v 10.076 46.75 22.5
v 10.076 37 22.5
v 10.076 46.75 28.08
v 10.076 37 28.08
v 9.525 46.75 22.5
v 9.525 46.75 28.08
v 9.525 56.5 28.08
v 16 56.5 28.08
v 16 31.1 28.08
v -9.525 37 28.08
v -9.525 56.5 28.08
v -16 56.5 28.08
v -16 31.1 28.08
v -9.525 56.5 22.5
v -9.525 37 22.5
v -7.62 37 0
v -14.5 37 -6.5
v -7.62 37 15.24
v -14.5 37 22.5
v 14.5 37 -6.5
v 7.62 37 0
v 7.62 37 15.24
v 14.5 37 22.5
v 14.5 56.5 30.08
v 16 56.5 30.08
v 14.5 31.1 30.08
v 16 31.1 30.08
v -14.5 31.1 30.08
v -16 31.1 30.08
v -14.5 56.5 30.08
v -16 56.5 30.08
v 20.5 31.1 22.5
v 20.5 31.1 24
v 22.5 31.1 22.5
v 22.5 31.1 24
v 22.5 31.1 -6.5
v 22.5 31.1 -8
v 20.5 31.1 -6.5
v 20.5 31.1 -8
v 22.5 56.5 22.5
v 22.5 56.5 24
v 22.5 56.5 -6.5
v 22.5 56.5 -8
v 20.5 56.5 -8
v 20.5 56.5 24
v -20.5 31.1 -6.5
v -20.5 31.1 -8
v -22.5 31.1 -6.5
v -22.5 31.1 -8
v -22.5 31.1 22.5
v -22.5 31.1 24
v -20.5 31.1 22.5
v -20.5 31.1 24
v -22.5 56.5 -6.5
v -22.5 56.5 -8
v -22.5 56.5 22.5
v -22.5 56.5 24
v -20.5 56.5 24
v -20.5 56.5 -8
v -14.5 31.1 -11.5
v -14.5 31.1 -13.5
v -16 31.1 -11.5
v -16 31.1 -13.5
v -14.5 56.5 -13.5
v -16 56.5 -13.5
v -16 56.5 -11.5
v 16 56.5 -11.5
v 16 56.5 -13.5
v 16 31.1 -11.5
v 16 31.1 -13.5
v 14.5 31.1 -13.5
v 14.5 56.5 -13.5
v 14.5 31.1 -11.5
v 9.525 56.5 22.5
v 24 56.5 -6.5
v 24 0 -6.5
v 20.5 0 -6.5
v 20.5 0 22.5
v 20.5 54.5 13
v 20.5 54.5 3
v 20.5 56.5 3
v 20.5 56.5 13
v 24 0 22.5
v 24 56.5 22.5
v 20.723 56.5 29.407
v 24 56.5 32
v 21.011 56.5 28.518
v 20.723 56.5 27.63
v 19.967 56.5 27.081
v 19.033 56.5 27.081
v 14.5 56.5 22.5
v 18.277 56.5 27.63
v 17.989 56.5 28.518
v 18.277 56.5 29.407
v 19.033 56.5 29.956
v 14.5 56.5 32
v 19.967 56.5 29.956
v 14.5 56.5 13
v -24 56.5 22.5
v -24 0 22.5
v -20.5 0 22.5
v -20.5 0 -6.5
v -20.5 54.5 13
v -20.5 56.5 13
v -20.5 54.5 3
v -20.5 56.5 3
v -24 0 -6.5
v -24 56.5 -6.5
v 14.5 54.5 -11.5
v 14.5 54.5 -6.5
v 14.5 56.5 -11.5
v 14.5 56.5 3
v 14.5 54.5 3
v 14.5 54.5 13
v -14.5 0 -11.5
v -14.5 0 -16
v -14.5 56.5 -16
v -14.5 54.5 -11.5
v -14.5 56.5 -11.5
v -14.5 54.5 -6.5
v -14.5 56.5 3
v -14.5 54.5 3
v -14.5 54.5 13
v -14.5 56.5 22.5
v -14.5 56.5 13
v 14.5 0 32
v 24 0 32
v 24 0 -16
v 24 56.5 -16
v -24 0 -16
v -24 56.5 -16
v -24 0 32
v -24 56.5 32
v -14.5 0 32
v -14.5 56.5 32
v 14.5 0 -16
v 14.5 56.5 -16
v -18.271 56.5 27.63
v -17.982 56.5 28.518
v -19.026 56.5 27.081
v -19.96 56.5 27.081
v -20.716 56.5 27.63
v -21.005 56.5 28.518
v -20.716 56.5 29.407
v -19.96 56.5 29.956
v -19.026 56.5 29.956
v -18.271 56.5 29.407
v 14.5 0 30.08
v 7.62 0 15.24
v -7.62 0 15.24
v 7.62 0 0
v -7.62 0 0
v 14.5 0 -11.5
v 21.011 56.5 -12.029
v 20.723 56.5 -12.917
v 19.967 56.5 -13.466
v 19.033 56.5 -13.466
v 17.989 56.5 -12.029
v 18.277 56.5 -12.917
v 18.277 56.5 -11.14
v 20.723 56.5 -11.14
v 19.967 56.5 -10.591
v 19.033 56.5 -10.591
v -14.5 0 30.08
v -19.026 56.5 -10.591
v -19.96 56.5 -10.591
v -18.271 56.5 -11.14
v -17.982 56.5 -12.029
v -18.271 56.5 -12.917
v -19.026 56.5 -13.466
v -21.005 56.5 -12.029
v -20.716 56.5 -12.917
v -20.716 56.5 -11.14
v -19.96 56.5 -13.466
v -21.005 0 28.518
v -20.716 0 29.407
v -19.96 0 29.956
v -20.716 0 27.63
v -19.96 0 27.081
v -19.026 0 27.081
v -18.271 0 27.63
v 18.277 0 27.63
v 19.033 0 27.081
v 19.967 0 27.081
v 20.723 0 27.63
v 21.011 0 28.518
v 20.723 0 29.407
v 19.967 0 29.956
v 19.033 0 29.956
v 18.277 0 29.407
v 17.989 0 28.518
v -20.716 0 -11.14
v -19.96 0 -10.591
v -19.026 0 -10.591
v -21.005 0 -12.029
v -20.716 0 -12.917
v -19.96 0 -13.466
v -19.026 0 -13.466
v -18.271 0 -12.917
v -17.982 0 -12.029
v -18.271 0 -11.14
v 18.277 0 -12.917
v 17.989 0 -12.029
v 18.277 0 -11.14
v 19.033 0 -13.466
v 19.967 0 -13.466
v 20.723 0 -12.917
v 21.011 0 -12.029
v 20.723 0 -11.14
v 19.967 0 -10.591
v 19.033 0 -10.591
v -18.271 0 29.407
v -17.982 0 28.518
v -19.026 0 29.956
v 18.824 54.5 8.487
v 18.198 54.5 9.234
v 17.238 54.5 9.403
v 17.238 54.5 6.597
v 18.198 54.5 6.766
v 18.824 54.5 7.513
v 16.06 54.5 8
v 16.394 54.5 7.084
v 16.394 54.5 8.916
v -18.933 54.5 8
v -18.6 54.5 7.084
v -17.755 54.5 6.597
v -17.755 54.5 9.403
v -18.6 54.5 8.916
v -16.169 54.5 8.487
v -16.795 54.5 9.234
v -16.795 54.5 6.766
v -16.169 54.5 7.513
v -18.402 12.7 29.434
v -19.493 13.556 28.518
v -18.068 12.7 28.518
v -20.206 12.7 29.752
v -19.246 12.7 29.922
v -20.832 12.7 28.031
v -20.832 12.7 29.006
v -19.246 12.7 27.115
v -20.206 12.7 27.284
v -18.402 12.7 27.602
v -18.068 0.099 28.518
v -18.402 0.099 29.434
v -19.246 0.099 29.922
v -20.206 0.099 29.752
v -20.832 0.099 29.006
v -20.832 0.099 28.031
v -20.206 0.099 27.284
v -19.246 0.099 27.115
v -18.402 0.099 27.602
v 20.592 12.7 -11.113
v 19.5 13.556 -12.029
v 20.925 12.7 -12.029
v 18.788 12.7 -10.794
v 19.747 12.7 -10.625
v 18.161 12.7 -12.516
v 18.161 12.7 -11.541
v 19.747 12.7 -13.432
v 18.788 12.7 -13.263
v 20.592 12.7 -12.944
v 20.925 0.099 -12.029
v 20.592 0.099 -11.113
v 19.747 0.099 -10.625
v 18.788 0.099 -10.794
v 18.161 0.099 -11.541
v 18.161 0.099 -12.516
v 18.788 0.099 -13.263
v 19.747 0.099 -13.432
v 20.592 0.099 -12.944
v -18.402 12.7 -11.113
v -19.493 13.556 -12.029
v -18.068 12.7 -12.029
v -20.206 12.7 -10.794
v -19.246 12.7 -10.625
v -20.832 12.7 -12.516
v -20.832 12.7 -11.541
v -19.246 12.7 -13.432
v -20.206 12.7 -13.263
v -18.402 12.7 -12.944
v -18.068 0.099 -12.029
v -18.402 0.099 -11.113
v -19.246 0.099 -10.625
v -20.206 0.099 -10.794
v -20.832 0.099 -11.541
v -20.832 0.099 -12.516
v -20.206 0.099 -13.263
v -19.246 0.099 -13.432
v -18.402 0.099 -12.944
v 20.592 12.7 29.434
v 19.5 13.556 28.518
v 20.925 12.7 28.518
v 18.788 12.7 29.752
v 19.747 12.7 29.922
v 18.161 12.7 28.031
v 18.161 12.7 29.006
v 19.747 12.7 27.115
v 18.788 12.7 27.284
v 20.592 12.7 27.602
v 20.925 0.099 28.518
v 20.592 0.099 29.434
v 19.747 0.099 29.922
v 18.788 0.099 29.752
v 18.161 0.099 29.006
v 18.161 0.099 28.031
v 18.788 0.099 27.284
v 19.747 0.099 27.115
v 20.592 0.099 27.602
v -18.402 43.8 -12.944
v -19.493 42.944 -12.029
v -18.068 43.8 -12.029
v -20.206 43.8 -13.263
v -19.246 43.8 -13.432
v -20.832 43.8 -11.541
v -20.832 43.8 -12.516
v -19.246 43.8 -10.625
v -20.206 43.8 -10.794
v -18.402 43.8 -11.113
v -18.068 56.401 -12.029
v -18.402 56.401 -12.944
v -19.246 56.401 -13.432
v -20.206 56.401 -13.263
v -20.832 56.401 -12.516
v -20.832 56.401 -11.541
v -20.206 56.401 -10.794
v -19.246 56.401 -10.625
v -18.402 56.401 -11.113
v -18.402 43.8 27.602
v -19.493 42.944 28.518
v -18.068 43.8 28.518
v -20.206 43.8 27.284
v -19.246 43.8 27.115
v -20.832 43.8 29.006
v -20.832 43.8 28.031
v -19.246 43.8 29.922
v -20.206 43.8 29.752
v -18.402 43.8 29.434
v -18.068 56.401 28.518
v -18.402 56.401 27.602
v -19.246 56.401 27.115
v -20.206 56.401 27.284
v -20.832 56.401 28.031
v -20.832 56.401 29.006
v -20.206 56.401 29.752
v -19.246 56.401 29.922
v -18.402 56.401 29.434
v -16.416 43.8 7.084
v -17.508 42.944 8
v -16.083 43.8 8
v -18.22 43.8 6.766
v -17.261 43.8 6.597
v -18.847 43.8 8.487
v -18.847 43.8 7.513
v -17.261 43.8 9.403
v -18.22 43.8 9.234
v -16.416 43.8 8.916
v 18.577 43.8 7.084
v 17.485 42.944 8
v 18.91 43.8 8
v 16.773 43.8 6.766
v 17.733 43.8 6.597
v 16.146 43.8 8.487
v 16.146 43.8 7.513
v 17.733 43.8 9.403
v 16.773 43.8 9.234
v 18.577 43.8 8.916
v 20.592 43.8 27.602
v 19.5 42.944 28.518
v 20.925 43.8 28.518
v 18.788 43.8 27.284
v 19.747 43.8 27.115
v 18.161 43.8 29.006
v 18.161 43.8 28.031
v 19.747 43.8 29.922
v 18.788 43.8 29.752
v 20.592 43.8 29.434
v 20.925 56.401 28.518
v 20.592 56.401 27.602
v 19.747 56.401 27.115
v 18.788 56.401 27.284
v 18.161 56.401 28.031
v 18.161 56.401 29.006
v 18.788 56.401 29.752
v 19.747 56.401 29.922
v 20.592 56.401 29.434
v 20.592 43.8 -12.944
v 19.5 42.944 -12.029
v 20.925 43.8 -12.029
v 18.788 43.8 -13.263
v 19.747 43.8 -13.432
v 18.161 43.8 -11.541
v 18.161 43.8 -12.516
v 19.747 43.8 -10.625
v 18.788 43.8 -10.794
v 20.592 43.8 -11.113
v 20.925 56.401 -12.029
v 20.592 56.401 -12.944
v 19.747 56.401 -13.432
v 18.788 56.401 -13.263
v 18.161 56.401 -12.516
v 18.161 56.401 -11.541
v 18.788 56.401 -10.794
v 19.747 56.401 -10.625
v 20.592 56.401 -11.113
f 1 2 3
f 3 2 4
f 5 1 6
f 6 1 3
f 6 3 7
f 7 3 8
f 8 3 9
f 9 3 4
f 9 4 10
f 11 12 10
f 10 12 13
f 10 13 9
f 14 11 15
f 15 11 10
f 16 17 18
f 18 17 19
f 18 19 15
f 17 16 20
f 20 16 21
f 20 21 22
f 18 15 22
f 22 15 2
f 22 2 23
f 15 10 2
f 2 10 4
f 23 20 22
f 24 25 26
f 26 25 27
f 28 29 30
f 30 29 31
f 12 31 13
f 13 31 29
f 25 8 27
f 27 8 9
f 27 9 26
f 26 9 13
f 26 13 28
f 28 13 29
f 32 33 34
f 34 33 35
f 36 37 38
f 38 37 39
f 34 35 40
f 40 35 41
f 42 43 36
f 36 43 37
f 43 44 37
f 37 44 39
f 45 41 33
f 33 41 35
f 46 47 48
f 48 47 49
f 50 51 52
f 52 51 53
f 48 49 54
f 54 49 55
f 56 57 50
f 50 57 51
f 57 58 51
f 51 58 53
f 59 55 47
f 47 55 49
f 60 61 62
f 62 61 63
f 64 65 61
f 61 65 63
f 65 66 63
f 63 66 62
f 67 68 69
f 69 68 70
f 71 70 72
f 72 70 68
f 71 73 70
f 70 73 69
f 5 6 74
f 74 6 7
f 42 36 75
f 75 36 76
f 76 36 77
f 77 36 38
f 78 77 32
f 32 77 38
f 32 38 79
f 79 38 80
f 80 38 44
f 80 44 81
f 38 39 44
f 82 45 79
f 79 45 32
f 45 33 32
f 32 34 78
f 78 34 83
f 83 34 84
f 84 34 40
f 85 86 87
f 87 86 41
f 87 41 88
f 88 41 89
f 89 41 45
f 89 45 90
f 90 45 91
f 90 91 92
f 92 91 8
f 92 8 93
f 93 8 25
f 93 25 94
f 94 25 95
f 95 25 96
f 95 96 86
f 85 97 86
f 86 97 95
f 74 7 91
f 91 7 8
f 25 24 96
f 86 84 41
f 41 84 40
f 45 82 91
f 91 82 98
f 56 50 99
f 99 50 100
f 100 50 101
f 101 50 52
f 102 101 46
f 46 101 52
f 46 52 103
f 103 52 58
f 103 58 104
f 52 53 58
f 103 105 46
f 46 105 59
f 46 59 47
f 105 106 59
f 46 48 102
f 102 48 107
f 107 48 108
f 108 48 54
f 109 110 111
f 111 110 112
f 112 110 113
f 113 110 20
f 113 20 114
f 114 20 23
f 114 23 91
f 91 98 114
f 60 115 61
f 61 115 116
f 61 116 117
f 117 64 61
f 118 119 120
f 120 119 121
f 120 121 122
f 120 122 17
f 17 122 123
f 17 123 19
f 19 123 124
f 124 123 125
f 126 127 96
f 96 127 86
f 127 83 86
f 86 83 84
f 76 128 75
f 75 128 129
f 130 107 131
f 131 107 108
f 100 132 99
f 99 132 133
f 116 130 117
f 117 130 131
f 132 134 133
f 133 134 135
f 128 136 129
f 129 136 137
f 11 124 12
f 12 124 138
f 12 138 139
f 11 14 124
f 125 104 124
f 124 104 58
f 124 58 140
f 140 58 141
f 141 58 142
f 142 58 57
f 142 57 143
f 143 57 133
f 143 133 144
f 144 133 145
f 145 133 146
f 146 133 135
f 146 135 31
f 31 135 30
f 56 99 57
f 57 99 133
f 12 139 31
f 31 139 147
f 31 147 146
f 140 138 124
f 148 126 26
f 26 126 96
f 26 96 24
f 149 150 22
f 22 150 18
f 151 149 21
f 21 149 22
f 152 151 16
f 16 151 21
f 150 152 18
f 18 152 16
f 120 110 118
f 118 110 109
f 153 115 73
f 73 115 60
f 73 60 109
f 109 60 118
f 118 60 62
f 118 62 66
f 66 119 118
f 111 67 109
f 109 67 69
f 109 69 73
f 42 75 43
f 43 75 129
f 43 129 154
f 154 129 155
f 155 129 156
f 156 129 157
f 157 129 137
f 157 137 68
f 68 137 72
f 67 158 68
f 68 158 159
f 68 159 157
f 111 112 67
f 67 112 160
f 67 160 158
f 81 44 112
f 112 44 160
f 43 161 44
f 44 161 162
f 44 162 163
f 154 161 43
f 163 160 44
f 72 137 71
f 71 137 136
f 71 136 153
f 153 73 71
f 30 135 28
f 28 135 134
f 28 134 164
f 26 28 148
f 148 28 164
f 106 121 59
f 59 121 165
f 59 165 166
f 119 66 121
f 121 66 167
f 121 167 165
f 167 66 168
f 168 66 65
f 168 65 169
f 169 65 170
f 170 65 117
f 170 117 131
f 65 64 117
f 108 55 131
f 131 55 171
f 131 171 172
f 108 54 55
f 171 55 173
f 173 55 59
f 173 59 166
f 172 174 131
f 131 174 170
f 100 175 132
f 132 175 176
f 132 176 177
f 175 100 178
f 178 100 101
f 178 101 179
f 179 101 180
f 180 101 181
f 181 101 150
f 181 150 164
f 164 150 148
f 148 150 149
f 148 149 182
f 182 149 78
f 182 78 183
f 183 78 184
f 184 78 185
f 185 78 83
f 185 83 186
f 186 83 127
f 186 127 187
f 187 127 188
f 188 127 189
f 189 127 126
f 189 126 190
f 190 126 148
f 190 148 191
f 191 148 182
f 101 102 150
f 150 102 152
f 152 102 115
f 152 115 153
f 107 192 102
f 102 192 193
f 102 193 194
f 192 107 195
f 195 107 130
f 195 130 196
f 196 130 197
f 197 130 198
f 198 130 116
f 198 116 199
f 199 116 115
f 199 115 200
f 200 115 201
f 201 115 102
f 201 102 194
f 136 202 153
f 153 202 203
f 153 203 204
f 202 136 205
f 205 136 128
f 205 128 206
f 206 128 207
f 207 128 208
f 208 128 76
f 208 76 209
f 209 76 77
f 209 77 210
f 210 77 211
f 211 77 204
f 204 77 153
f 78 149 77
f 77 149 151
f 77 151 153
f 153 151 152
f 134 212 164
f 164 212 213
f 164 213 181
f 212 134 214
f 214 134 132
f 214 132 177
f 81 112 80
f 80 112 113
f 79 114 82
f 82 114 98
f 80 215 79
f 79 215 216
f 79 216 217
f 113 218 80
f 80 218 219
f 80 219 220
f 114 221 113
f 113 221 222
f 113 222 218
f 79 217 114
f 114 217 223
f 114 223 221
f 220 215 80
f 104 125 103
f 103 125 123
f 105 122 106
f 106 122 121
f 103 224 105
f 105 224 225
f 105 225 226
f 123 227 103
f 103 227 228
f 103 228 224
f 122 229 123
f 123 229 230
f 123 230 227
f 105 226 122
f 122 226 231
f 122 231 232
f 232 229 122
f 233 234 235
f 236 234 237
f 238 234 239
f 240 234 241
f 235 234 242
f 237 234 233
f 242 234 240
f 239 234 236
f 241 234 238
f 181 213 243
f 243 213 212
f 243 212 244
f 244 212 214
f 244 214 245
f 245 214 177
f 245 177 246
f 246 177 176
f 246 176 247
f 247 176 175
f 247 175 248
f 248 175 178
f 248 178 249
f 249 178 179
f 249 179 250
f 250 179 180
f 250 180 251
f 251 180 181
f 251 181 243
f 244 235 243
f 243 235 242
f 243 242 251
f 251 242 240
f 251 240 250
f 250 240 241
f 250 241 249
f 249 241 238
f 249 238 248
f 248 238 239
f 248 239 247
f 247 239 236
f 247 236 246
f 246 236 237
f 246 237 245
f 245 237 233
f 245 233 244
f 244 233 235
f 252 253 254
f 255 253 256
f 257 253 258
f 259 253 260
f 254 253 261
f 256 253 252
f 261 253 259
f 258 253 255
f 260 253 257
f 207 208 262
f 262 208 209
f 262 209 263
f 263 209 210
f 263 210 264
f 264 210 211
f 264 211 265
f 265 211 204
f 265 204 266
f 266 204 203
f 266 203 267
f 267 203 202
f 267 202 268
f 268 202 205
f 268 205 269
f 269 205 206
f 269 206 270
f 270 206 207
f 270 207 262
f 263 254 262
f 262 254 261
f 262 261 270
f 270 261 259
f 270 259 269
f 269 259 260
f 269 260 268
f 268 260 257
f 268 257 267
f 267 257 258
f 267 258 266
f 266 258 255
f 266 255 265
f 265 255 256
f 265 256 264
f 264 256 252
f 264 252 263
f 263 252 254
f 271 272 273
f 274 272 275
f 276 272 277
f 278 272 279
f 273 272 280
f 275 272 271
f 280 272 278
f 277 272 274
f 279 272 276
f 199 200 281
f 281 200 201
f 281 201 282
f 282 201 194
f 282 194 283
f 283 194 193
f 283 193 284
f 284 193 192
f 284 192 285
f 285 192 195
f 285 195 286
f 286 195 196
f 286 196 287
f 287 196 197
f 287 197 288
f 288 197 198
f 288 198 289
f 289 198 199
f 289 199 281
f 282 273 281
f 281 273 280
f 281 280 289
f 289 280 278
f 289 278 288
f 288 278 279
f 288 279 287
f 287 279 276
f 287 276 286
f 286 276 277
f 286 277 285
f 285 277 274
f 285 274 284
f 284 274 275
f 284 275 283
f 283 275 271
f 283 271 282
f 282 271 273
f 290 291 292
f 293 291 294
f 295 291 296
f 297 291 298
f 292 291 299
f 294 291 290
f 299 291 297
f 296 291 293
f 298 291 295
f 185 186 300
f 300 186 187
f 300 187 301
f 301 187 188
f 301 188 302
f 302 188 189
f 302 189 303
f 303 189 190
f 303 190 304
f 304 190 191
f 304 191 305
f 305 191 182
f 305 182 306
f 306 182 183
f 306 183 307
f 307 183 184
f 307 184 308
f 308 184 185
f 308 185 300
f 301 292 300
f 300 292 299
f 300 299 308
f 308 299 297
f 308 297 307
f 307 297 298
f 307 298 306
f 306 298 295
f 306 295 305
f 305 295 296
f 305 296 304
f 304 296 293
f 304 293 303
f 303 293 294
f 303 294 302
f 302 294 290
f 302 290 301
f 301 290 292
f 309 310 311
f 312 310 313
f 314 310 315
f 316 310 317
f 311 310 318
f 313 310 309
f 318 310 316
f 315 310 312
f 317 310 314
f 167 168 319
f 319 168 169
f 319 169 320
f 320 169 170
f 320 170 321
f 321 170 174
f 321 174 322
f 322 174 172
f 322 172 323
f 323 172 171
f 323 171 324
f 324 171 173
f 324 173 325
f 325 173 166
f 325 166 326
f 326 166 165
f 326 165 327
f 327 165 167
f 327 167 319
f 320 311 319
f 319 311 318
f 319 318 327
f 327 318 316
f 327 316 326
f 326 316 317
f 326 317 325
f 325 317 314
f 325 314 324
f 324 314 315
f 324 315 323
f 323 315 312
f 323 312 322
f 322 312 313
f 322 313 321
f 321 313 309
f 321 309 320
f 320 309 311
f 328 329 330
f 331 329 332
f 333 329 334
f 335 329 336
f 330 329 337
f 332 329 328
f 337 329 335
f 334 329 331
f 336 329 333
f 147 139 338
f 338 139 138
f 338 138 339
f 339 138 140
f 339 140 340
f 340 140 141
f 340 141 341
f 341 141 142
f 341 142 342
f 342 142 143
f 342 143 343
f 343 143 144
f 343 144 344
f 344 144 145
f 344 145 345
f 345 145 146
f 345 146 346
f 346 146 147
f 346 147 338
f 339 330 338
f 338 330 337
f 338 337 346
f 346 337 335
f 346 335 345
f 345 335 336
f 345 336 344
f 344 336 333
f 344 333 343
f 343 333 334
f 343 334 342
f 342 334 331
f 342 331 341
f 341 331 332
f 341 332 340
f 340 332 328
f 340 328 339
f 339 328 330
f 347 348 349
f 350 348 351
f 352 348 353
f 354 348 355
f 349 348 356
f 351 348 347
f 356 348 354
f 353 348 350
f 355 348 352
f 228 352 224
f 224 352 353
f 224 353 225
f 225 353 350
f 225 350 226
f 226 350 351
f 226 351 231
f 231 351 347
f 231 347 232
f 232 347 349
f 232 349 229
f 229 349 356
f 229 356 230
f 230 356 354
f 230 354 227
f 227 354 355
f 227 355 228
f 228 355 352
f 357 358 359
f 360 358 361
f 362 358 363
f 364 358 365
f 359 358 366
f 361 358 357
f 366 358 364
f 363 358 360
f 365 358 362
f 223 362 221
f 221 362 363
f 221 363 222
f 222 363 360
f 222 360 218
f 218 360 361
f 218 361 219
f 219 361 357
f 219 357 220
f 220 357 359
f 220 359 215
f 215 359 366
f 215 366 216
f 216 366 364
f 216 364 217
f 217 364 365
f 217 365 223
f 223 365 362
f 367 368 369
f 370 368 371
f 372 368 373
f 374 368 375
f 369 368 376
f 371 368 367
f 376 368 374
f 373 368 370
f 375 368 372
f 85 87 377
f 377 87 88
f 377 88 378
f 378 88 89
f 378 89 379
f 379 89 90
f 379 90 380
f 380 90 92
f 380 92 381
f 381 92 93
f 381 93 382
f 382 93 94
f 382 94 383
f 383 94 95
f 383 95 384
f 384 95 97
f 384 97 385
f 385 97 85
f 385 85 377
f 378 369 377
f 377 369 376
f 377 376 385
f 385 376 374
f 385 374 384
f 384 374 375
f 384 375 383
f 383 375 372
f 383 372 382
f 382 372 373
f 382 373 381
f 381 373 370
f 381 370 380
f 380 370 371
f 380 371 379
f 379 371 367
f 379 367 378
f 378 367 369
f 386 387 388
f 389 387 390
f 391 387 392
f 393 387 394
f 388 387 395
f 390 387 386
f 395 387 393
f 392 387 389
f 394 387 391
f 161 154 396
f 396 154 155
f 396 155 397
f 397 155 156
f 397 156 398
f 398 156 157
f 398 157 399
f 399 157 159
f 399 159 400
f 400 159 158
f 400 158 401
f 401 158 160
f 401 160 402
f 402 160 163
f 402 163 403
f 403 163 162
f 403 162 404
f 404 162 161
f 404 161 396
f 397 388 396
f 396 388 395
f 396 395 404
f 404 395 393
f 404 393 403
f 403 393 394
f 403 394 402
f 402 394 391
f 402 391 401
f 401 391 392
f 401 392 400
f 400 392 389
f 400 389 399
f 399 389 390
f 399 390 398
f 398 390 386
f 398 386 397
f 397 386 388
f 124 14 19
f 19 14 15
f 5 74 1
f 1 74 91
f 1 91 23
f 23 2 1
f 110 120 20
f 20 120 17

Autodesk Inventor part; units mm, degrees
ref_plane "YZ Plane" through (0, 0, 0) normal (1, 0, 0) x (0, 1, 0)
ref_plane "XZ Plane" through (0, 0, 0) normal (0, 1, 0) x (-1, 0, 0)
ref_plane "XY Plane" through (0, 0, 0) normal (0, 0, 1) x (1, 0, 0)
sketch "Sketch1" plane through (0, 0, 0) normal (0, 1, 0) x (-1, 0, 0)
  line L0 (101.6, 101.6) -> (-101.6, 101.6)
  line L1 (-101.6, 101.6) -> (-101.6, -101.6)
  line L2 (-101.6, -101.6) -> (101.6, -101.6)
  line L3 (101.6, -101.6) -> (101.6, 101.6)
  circle A0 centre (0, 0) radius 2.5
  line L4 (9.525, -6.5) -> (-9.525, -6.5)
  line L5 (0, 0) -> (0, 8)
  line L6 (-14.5, -6.5) -> (-14.5, 22.5)
  line L7 (14.5, 22.5) -> (14.5, -6.5)
  circle A1 centre (0, 8) radius 14
  line L8 (-14.5, 22.5) -> (14.5, 22.5)
  line L9 (14.5, -6.5) -> (-14.5, -6.5)
  line L10 (-24.5, 32.5) -> (24.5, 32.5)
  line L11 (24.5, 32.5) -> (24.5, -16.5)
  line L12 (24.5, -16.5) -> (-24.5, -16.5)
  line L13 (-24.5, -16.5) -> (-24.5, 32.5)
  line L14 (-9.525, 22.5) -> (9.525, 22.5)
  line L15 (9.525, 22.5) -> (9.525, 27.58)
  line L16 (9.525, 27.58) -> (-9.525, 27.58)
  line L17 (-9.525, 27.58) -> (-9.525, 22.5)
  point P0 (9.525, 22.5)
  point P1 (-9.525, -6.5)
  dimension "d0" = 203.2
  dimension "d1" = 203.2
  dimension "d2" = 8
  dimension "d3" = 28
  dimension "d4" = 29
  dimension "d5" = 29
  dimension "d6" = 14.5
  dimension "d7" = 10
  dimension "d8" = 10
  dimension "d9" = 10
  dimension "d10" = 10
  dimension "d11" = 5.08
  dimension "d12" = 9.525
  dimension "d13" = 9.525
  dimension "d14" = 101.6
  dimension "d15" = 101.6
extrude "Extrusion1" add sketch "Sketch1" along normal blind 56.5 contours A0 | L4 L9 L6 L8 L7 | L8 L17 L16 L15 | A1 | L10 L11 L12 L13
sketch "Sketch2" plane through (0, 56.5, 0) normal (0, 1, 0) x (1, 0, 0)
  line L0 (101.6, 101.6) -> (-101.6, 101.6)
  line L1 (-101.6, 101.6) -> (-101.6, -101.6)
  line L2 (-101.6, -101.6) -> (101.6, -101.6)
  line L3 (101.6, -101.6) -> (101.6, 101.6)
  circle A0 centre (0, 0) radius 2.5
  line L4 (-9.525, 6.5) -> (9.525, 6.5)
  line L5 (0, 0) -> (0, -8)
  line L6 (14.5, 6.5) -> (14.5, -22.5)
  line L7 (-14.5, -22.5) -> (-14.5, 6.5)
  circle A1 centre (0, -8) radius 14
  line L8 (14.5, -22.5) -> (-14.5, -22.5)
  line L9 (-14.5, 6.5) -> (14.5, 6.5)
  line L10 (24.5, -32.5) -> (-24.5, -32.5)
  line L11 (-24.5, -32.5) -> (-24.5, 16.5)
  line L12 (-24.5, 16.5) -> (24.5, 16.5)
  line L13 (24.5, 16.5) -> (24.5, -32.5)
  line L14 (9.525, -22.5) -> (-9.525, -22.5)
  line L15 (-9.525, -22.5) -> (-9.525, -27.58)
  line L16 (-9.525, -27.58) -> (9.525, -27.58)
  line L17 (9.525, -27.58) -> (9.525, -22.5)
  point P0 (9.525, 22.5)
  point P1 (-9.525, -6.5)
  dimension "d18" = 203.2
  dimension "d19" = 203.2
  dimension "d20" = 8
  dimension "d21" = 28
  dimension "d22" = 29
  dimension "d23" = 29
  dimension "d24" = 14.5
  dimension "d25" = 10
  dimension "d26" = 10
  dimension "d27" = 10
  dimension "d28" = 10
  dimension "d29" = 5.08
  dimension "d30" = 9.525
  dimension "d31" = 9.525
  dimension "d32" = 101.6
  dimension "d33" = 101.6
extrude "Extrusion2" cut sketch "Sketch2" against normal blind 19.5 contours A0 | L4 L9 L6 L8 L7 | L8 L17 L16 L15 | A1
sketch "Sketch4" plane through (0, 56.5, 0) normal (0, 1, 0) x (1, 0, 0)
  circle A0 centre (-17.508, -8) radius 2
  circle A1 centre (17.4854, -8) radius 2
  circle A2 centre (17.4854, -8) radius 2
  circle A3 centre (0, -8.01) radius 14
  circle A4 centre (0, -0.01) radius 2.5
  circle A5 centre (-19.4934, 12.0285) radius 2.2448
  circle A6 centre (19.5, 12.0285) radius 2.3104
  circle A7 centre (19.5, -28.5182) radius 2.2008
  circle A8 centre (-19.4934, -28.5182) radius 2.3894
  point P0 (0, 0)
  dimension "d37" = 34.9934
  dimension "d38" = 28
  dimension "d39" = 8
  dimension "d65" = 8
  dimension "d66" = 8
hole "Hole1" at (-17.508, 56.5, 8) at (17.4854, 56.5, 8) at (-19.4934, 56.5, 28.5182) at (19.5, 56.5, 28.5182) at (-19.4934, 56.5, -12.0285) at (19.5, 56.5, -12.0285) direction (0, -1, 0) diameter 2.85 depth 12.7 tip angle 118 countersink diameter 3.0226 countersink angle 82 thread size "M3.5x0.6" class "6H" standard "ANSI Metric M Profile"
sketch "Sketch5" plane through (0, 0, 0) normal (0, -1, 0) x (1, 0, 0)
  circle A0 centre (-19.4934, 28.5182) radius 1.425 projected
  circle A1 centre (-19.4934, 28.5182) radius 1.425
  circle A2 centre (19.5, 28.5182) radius 1.425 projected
  circle A3 centre (19.5, 28.5182) radius 1.425
  circle A4 centre (19.5, -12.0285) radius 1.425 projected
  circle A5 centre (19.5, -12.0285) radius 1.425
  circle A6 centre (-19.4934, -12.0285) radius 1.5113 projected
  circle A7 centre (-19.4934, -12.0285) radius 1.5113
  point P0 (0, 0)
hole "Hole2" at (19.5, 0, -12.0285) at (-19.4934, 0, -12.0285) at (-19.4934, 0, 28.5182) at (19.5, 0, 28.5182) direction (0, 1, 0) diameter 2.85 depth 12.7 tip angle 118 countersink diameter 3.0226 countersink angle 82 thread size "M3.5x0.6" class "6H" standard "ANSI Metric M Profile"
sketch "Sketch6" plane through (-24.5, 0, 32.5) normal (0, 0, 1) x (1, 0, 0)
  line L0 (34.025, 56.5) -> (34.025, 37) projected
  line L1 (14.975, 56.5) -> (34.025, 56.5)
  line L2 (34.025, 56.5) -> (34.025, 46.75)
  line L3 (34.025, 46.75) -> (14.975, 46.75)
  line L4 (14.975, 46.75) -> (14.975, 56.5)
  point P0 (24.5, 0)
extrude "Extrusion3" cut sketch "Sketch6" against normal blind 25.4
sketch "Sketch8" plane through (0, 56.5, 0) normal (0, 1, 0) x (1, 0, 0)
  line L0 (-24.5, -3) -> (24.5, -3)
  line L1 (24.5, -3) -> (24.5, -13)
  line L2 (24.5, -13) -> (-24.5, -13)
  line L3 (-24.5, -13) -> (-24.5, -3)
  line L4 (14.5, 6.5) -> (14.5, -22.5) projected
  line L5 (14.5, -3) -> (14.5, -13)
  line L6 (-14.5, -22.5) -> (-14.5, 6.5) projected
  line L7 (-14.5, -3) -> (-14.5, -13)
  line L8 (24.5, -32.5) -> (24.5, 16.5) projected
  line L9 (-24.5, 16.5) -> (-24.5, -32.5) projected
  point P0 (0, 0)
  dimension "d58" = 10
  dimension "d60" = 0
  dimension "d61" = 0
  dimension "d62" = 3
extrude "Extrusion4" cut sketch "Sketch8" against normal blind 2 contours L0 L6 L2 L3 | L0 L1 L2 L4
sketch "Sketch9" plane through (0, 56.5, 0) normal (0, 1, 0) x (1, 0, 0)
  line L0 (-14.5, 6.5) -> (14.5, 6.5) projected
  line L1 (24.5, 16.5) -> (-24.5, 16.5) projected
  line L2 (-14.5, 6.5) -> (14.5, 6.5)
  line L3 (14.5, 6.5) -> (14.5, 16.5)
  line L4 (14.5, 16.5) -> (-14.5, 16.5)
  line L5 (-14.5, 16.5) -> (-14.5, 6.5)
  line L6 (14.5, 6.5) -> (14.5, -3) projected
  line L7 (-14.5, 11.5) -> (14.5, 11.5)
  line L8 (-24.5, 16.5) -> (-24.5, -32.5) projected
  line L9 (-14.5, 6.5) -> (-24.5, 6.5)
  line L10 (-24.5, 6.5) -> (-24.5, -22.5)
  line L11 (-24.5, -22.5) -> (-14.5, -22.5)
  line L12 (-14.5, -22.5) -> (-14.5, 6.5)
  line L13 (-9.525, -22.5) -> (-14.5, -22.5) projected
  line L14 (-20.5, 6.5) -> (-20.5, -22.5)
  line L15 (24.5, -32.5) -> (24.5, 16.5) projected
  line L16 (24.5, -22.5) -> (20.5, -22.5)
  line L17 (20.5, -22.5) -> (20.5, 6.5)
  line L18 (20.5, 6.5) -> (24.5, 6.5)
  line L19 (24.5, 6.5) -> (24.5, -22.5)
  line L20 (-24.5, -32.5) -> (24.5, -32.5) projected
  line L21 (14.5, -32.5) -> (14.5, -30.08)
  line L22 (14.5, -30.08) -> (-14.5, -30.08)
  line L23 (-14.5, -30.08) -> (-14.5, -32.5)
  line L24 (-9.525, -27.58) -> (9.525, -27.58) projected
  point P0 (0, 0)
  point P1 (-14.5, 16.5)
  dimension "d67" = 0
  dimension "d68" = 5
  dimension "d69" = 0
  dimension "d71" = 4
  dimension "d72" = 4
  dimension "d98" = 2.5
extrude "Extrusion5" cut sketch "Sketch9" against normal through all contours L5 L1 L3 L7 | L14 L11 L8 L9 | L15 L16 L17 L18 | L23 L22 L21 L20
sketch "Sketch11" plane through (0, 37, 0) normal (0, 1, 0) x (1, 0, 0)
  line L0 (-20.5, -3) -> (-14.5, -3) projected
  line L1 (20.5, -13) -> (20.5, -3) projected
  line L2 (-20.5, -3) -> (20.5, -3)
  line L3 (20.5, -3) -> (20.5, -13)
  line L4 (20.5, -13) -> (-20.5, -13)
  line L5 (-20.5, -13) -> (-20.5, -3)
  point P0 (0, 0)
  dimension "d75" = 41
  dimension "d76" = 10
sketch "Sketch12" plane through (14.5, 56.5, -11.5) normal (0, 0, -1) x (-1, 0, 0)
  line L0 (0, 0) -> (-6, 0) projected
  line L1 (29, 0) -> (29, -19.5) projected
  line L2 (0, 0) -> (29, 0)
  line L3 (29, 0) -> (29, -2)
  line L4 (29, -2) -> (0, -2)
  line L5 (0, -2) -> (0, 0)
  point P0 (14.5, -56.5)
  dimension "d77" = 2
extrude "Extrusion6" cut sketch "Sketch12" against normal blind 25.4
sketch "Sketch13" plane through (0, 37, 0) normal (0, 1, 0) x (1, 0, 0)
  line L0 (0, 0) -> (7.62, 0)
  line L1 (7.62, 0) -> (7.62, -15.24)
  line L2 (7.62, -15.24) -> (0, -15.24)
  line L3 (0, -15.24) -> (0, 0)
  line L4 (0, 0) -> (-7.62, 0)
  line L5 (-7.62, 0) -> (-7.62, -15.24)
  line L6 (-7.62, -15.24) -> (0, -15.24)
  line L7 (0, -15.24) -> (0, 0)
  line L8 (14.5, 6.5) -> (-14.5, 6.5) projected
  line L9 (-9.525, -27.58) -> (9.525, -27.58) projected
  dimension "d80" = 7.62
  dimension "d81" = 15.24
  dimension "d82" = 7.62
  dimension "d86" = 15.24
extrude "Extrusion7" cut sketch "Sketch13" against normal through all
sketch "Sketch14" plane through (0, 56.5, 0) normal (0, 1, 0) x (1, 0, 0)
  line L0 (-14.5, 16.5) -> (-24.5, 16.5) projected
  line L1 (24.5, 6.5) -> (24.5, 16.5) projected
  line L2 (-24.5, 16.5) -> (24.5, 16.5)
  line L3 (24.5, 16.5) -> (24.5, 16)
  line L4 (24.5, 16) -> (-24.5, 16)
  line L5 (-24.5, 16) -> (-24.5, 16.5)
  line L6 (24.5, 16.5) -> (14.5, 16.5) projected
  line L7 (9.525, -32.5) -> (24.5, -32.5) projected
  line L8 (24.5, 16.5) -> (24, 16.5)
  line L9 (24, 16.5) -> (24, -32.5)
  line L10 (24, -32.5) -> (24.5, -32.5)
  line L11 (24.5, -32.5) -> (24.5, 16.5)
  line L12 (-24.5, -22.5) -> (-24.5, -32.5) projected
  line L13 (24.5, -32.5) -> (-24.5, -32.5)
  line L14 (-24.5, -32.5) -> (-24.5, -32)
  line L15 (-24.5, -32) -> (24.5, -32)
  line L16 (24.5, -32) -> (24.5, -32.5)
  line L17 (-24.5, -32.5) -> (-9.525, -32.5) projected
  line L18 (-24.5, -32.5) -> (-24, -32.5)
  line L19 (-24, -32.5) -> (-24, 16.5)
  line L20 (-24, 16.5) -> (-24.5, 16.5)
  line L21 (-24.5, 16.5) -> (-24.5, -32.5)
  point P0 (0, 0)
  point P1 (-24.5, 16)
  point P2 (24, 16)
  point P3 (24, -32)
  point P4 (-24, -32)
  point P5 (-24, 16)
  dimension "d89" = 0.5
  dimension "d90" = 0.5
  dimension "d91" = 0.5
  dimension "d92" = 0.5
extrude "Extrusion8" cut sketch "Sketch14" against normal through all contours L2 L9 L4 L19 L0 | L19 L4 L5 L0 | L19 L15 L12 L21 L4 | L2 L1 L4 L9 | L4 L1 L11 L15 L9 | L19 L13 L12 L15 | L15 L9 L7 L13 L19 | L15 L11 L7 L9
sketch "Sketch18" plane through (0, 56.5, 0) normal (0, 1, 0) x (1, 0, 0)
  line L0 (-20.5, -22.5) -> (-20.5, 6.5) projected
  line L1 (-24, -22.5) -> (-20.5, -22.5) projected
  line L2 (-20.5, 6.5) -> (-22.5, 6.5)
  line L3 (-22.5, 6.5) -> (-22.5, -22.5)
  line L4 (-22.5, -22.5) -> (-20.5, -22.5)
  line L5 (-20.5, -22.5) -> (-20.5, 6.5)
  line L6 (-20.5, 6.5) -> (-22.5, 6.5)
  line L7 (-22.5, 6.5) -> (-22.5, 8)
  line L8 (-22.5, 8) -> (-20.5, 8)
  line L9 (-20.5, 8) -> (-20.5, 6.5)
  line L10 (-20.5, -22.5) -> (-22.5, -22.5)
  line L11 (-22.5, -22.5) -> (-22.5, -24)
  line L12 (-22.5, -24) -> (-20.5, -24)
  line L13 (-20.5, -24) -> (-20.5, -22.5)
  line L14 (-14.5, 16) -> (-14.5, 11.5) projected
  line L15 (14.5, 16) -> (14.5, -3) projected
  line L16 (-14.5, 11.5) -> (14.5, 11.5)
  line L17 (14.5, 11.5) -> (14.5, 13.5)
  line L18 (14.5, 13.5) -> (-14.5, 13.5)
  line L19 (-14.5, 13.5) -> (-14.5, 11.5)
  line L20 (14.5, 13.5) -> (16, 13.5)
  line L21 (16, 13.5) -> (16, 11.5)
  line L22 (16, 11.5) -> (14.5, 11.5)
  line L23 (14.5, 11.5) -> (14.5, 13.5)
  line L24 (-14.5, 13.5) -> (-16, 13.5)
  line L25 (-16, 13.5) -> (-16, 11.5)
  line L26 (-16, 11.5) -> (-14.5, 11.5)
  line L27 (-14.5, 11.5) -> (-14.5, 13.5)
  line L28 (20.5, -3) -> (20.5, 6.5) projected
  line L29 (20.5, -22.5) -> (24, -22.5) projected
  line L30 (20.5, 6.5) -> (22.5, 6.5)
  line L31 (22.5, 6.5) -> (22.5, -22.5)
  line L32 (22.5, -22.5) -> (20.5, -22.5)
  line L33 (20.5, -22.5) -> (20.5, 6.5)
  line L34 (20.5, 6.5) -> (22.5, 6.5)
  line L35 (22.5, 6.5) -> (22.5, 8)
  line L36 (22.5, 8) -> (20.5, 8)
  line L37 (20.5, 8) -> (20.5, 6.5)
  line L38 (20.5, -22.5) -> (22.5, -22.5)
  line L39 (22.5, -22.5) -> (22.5, -24)
  line L40 (22.5, -24) -> (20.5, -24)
  line L41 (20.5, -24) -> (20.5, -22.5)
  line L42 (-14.5, -30.08) -> (14.5, -30.08)
  line L43 (14.5, -30.08) -> (14.5, -28.08)
  line L44 (14.5, -28.08) -> (-14.5, -28.08)
  line L45 (-14.5, -28.08) -> (-14.5, -30.08)
  line L46 (14.5, -28.08) -> (16, -28.08)
  line L47 (16, -28.08) -> (16, -30.08)
  line L48 (16, -30.08) -> (14.5, -30.08)
  line L49 (14.5, -30.08) -> (14.5, -28.08)
  line L50 (-14.5, -28.08) -> (-16, -28.08)
  line L51 (-16, -28.08) -> (-16, -30.08)
  line L52 (-16, -30.08) -> (-14.5, -30.08)
  line L53 (-14.5, -30.08) -> (-14.5, -28.08)
  point P0 (0, 0)
  point P1 (14.5, 11.5)
  dimension "d99" = 2
  dimension "d100" = 1.5
  dimension "d101" = 2
  dimension "d102" = 2
  dimension "d103" = 1.5
  dimension "d104" = 1.5
  dimension "d105" = 2
  dimension "d106" = 1.5
  dimension "d107" = 1.5
  dimension "d108" = 2
  dimension "d109" = 1.5
  dimension "d110" = 1.5
  dimension "d115" = 1.5
extrude "Extrusion9" cut sketch "Sketch18" against normal blind 25.4
sketch "Sketch19" plane through (-16, 56.5, 28.08) normal (0, 0, 1) x (1, 0, 0)
  line L0 (6.475, -9.75) -> (25.525, -9.75) projected
  line L1 (1.5, -19.5) -> (30.5, -19.5) projected
  line L2 (6.475, -9.75) -> (26.0764, -9.75)
  line L3 (26.0764, -9.75) -> (26.0764, -19.5)
  line L4 (26.0764, -19.5) -> (6.475, -19.5)
  line L5 (6.475, -19.5) -> (6.475, -9.75)
  point P0 (16, -56.5)
  point P1 (6.475, -19.5)
extrude "Extrusion10" cut sketch "Sketch19" against normal blind 25.4
sketch "Sketch20" plane through (20.5, 54.5, 3) normal (1, 0, 0) x (0, 0, -1)
  point P0 (3, -54.5)
equation "\"d86\" = d81"
equation "\"d100\" = d115"
equation "\"d103\" = d115"
equation "\"d104\" = d115"
equation "\"d106\" = d115"
equation "\"d107\" = d115"
equation "\"d109\" = d115"
equation "\"d110\" = d115"
properties part number "Motor_Holder"
